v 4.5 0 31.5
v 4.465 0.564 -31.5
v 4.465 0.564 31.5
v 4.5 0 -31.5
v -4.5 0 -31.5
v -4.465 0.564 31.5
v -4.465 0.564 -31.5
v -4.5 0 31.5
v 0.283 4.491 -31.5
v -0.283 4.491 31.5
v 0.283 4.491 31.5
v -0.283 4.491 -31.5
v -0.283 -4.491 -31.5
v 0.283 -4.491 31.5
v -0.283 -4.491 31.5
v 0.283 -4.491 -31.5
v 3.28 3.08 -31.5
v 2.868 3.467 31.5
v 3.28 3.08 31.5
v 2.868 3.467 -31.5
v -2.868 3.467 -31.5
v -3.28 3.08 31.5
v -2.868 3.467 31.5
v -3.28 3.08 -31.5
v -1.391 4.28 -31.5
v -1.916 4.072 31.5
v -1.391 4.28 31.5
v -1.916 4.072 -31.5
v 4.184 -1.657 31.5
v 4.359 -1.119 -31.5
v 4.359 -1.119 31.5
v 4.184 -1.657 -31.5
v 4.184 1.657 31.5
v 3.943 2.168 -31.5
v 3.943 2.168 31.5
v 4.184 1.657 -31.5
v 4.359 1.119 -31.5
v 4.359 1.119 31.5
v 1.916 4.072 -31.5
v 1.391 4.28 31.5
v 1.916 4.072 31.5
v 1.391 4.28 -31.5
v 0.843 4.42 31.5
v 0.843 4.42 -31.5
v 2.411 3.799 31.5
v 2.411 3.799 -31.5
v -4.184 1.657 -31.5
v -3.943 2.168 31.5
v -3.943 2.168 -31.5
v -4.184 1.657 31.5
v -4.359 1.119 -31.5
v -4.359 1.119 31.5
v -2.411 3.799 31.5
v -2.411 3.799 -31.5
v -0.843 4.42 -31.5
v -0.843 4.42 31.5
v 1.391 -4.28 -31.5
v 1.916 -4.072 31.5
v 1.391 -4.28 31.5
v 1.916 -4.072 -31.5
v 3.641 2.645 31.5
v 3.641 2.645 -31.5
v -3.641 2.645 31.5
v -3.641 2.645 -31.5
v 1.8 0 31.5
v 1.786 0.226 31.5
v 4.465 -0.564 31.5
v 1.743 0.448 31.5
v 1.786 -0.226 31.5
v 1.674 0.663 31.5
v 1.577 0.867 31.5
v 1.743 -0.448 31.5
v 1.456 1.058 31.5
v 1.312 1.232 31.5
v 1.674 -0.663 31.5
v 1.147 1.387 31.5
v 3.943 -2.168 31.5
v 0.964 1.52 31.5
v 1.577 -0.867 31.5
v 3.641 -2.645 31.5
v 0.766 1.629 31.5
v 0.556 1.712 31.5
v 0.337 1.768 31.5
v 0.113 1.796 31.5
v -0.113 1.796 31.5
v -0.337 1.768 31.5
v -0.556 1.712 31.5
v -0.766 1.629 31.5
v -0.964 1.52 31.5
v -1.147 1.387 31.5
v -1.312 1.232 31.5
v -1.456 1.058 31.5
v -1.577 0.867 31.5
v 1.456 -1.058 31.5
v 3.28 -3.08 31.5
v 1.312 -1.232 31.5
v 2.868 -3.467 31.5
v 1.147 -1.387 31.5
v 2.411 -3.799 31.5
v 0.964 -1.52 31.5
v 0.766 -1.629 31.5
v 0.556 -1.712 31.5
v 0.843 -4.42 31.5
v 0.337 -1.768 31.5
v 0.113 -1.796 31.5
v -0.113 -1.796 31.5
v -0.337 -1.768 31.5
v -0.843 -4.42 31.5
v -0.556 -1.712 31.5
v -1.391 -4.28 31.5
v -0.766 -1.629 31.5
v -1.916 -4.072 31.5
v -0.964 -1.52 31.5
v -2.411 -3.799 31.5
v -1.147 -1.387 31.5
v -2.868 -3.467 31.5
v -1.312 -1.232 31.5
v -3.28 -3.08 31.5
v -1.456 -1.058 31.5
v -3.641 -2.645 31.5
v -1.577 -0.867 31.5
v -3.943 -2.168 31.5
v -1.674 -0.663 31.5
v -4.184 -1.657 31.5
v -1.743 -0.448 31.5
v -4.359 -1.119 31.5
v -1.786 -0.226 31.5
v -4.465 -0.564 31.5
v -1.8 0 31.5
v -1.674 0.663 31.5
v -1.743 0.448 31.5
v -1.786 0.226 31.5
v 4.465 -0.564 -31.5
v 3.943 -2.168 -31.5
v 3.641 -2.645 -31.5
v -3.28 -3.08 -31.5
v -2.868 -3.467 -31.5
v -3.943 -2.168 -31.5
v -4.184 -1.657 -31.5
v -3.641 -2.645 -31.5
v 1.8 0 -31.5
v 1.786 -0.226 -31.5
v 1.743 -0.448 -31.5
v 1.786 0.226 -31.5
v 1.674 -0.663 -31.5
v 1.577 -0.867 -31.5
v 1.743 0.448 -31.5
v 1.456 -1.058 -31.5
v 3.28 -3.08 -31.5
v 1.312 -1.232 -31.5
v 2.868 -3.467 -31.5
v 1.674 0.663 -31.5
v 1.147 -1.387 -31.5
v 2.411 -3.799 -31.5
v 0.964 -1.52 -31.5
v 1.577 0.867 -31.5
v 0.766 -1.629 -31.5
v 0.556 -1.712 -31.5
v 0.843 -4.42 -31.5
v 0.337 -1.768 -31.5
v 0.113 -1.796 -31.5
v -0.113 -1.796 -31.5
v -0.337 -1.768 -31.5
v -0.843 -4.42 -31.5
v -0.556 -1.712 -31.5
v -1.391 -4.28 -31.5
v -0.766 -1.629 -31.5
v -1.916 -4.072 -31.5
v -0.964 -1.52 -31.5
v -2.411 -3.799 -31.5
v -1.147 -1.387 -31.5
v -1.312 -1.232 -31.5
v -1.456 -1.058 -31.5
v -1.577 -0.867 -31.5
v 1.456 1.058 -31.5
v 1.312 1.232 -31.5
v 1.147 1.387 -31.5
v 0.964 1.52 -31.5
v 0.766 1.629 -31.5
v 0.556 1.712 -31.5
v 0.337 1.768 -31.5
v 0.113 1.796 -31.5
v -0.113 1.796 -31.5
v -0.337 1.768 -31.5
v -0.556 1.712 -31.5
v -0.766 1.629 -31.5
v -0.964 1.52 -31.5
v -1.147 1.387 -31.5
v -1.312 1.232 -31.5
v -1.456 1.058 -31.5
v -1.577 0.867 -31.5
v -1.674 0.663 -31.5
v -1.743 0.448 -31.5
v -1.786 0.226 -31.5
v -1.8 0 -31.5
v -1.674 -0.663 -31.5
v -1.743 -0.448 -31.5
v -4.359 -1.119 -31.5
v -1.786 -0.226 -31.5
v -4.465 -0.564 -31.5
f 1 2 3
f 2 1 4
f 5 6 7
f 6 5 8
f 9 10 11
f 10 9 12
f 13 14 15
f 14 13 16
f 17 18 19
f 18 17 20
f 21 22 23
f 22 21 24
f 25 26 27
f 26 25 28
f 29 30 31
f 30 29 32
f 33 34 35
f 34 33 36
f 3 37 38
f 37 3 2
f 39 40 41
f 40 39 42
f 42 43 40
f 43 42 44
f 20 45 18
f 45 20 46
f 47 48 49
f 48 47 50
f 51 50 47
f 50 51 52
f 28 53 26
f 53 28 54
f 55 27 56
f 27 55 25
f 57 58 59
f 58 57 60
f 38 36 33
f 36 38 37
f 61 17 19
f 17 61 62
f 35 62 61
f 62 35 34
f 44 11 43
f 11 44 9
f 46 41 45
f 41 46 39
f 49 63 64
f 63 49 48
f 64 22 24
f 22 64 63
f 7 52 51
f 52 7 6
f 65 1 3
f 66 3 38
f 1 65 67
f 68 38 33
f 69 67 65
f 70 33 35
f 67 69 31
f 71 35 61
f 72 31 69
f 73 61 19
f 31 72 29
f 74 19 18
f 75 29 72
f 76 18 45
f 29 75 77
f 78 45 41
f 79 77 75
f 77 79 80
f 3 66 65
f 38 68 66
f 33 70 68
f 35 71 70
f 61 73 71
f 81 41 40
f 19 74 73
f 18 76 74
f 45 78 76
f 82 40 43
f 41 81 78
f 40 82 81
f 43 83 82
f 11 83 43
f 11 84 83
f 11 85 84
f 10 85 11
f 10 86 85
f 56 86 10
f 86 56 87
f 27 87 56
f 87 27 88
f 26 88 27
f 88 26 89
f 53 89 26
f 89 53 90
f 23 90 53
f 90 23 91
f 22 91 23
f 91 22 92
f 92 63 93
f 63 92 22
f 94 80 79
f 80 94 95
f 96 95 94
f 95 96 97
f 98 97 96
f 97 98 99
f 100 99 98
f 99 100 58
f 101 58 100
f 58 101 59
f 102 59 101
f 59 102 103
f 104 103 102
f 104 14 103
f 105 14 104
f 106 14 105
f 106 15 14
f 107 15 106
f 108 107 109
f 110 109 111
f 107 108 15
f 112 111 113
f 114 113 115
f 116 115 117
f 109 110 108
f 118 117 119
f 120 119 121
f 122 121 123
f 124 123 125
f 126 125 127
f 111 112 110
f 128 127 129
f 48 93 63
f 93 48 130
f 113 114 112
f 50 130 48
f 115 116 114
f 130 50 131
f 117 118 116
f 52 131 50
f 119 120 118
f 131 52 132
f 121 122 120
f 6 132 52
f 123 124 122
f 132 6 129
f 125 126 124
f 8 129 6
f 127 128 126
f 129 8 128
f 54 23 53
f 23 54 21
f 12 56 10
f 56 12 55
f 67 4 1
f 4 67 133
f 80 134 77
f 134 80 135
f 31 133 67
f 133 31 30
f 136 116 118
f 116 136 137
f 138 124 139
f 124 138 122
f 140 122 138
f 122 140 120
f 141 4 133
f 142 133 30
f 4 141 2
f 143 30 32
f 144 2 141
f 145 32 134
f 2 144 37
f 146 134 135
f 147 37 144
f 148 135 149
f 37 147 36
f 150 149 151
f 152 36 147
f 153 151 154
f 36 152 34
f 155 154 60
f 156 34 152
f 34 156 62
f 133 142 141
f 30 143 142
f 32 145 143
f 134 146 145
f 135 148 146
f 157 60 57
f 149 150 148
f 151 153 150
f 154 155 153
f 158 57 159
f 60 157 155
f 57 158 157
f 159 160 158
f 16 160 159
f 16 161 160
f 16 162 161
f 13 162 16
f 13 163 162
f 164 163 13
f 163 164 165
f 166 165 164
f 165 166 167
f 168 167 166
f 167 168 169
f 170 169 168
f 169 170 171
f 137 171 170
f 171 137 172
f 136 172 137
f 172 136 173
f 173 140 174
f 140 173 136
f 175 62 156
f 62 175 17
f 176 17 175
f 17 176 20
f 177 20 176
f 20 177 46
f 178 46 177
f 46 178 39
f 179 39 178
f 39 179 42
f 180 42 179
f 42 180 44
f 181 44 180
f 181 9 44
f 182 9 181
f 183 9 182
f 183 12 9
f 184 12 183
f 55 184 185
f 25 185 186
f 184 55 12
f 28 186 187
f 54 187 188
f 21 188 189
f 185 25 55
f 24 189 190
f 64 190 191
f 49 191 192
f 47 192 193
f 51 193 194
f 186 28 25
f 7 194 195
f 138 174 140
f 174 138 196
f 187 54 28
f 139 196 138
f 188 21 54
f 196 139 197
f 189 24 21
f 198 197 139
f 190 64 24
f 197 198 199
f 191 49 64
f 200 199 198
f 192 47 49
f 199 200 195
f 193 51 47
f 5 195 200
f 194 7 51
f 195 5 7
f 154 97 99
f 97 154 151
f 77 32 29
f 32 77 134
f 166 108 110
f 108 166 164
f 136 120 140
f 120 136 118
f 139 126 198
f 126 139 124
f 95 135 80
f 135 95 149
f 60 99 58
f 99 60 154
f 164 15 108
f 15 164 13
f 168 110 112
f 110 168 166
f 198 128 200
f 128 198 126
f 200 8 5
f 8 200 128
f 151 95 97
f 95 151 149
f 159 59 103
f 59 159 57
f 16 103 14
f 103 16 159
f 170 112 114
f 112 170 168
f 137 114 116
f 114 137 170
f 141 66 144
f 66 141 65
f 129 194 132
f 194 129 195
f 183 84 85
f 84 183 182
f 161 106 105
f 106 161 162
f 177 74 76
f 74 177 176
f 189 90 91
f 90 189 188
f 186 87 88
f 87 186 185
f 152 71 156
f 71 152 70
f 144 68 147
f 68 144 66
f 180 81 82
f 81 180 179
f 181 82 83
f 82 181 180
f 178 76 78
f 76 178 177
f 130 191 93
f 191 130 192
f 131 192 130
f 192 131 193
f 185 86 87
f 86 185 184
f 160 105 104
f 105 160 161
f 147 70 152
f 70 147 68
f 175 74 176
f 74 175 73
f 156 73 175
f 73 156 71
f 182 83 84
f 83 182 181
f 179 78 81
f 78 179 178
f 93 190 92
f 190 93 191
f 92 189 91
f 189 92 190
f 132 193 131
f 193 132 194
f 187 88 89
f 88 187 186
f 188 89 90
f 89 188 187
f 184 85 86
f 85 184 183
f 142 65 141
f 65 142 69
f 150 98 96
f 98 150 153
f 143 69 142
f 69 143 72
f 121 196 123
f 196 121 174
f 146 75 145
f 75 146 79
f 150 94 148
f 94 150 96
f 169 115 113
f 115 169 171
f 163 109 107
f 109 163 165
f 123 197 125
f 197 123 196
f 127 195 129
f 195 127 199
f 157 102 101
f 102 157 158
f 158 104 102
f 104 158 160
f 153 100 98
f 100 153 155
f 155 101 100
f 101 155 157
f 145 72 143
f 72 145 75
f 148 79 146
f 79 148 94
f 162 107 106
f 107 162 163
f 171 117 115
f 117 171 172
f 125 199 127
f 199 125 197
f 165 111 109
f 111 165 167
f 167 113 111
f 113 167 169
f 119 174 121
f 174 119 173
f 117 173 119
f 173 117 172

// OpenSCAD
$fn = 50;


difference() {
	union() {
		translate(v = [0, 0, -31.5000000000]) {
			cylinder(h = 63, r = 4.5000000000);
		}
	}
	union() {
		#translate(v = [0, 0, -100.0000000000]) {
			cylinder(h = 200, r = 1.8000000000);
		}
	}
}
